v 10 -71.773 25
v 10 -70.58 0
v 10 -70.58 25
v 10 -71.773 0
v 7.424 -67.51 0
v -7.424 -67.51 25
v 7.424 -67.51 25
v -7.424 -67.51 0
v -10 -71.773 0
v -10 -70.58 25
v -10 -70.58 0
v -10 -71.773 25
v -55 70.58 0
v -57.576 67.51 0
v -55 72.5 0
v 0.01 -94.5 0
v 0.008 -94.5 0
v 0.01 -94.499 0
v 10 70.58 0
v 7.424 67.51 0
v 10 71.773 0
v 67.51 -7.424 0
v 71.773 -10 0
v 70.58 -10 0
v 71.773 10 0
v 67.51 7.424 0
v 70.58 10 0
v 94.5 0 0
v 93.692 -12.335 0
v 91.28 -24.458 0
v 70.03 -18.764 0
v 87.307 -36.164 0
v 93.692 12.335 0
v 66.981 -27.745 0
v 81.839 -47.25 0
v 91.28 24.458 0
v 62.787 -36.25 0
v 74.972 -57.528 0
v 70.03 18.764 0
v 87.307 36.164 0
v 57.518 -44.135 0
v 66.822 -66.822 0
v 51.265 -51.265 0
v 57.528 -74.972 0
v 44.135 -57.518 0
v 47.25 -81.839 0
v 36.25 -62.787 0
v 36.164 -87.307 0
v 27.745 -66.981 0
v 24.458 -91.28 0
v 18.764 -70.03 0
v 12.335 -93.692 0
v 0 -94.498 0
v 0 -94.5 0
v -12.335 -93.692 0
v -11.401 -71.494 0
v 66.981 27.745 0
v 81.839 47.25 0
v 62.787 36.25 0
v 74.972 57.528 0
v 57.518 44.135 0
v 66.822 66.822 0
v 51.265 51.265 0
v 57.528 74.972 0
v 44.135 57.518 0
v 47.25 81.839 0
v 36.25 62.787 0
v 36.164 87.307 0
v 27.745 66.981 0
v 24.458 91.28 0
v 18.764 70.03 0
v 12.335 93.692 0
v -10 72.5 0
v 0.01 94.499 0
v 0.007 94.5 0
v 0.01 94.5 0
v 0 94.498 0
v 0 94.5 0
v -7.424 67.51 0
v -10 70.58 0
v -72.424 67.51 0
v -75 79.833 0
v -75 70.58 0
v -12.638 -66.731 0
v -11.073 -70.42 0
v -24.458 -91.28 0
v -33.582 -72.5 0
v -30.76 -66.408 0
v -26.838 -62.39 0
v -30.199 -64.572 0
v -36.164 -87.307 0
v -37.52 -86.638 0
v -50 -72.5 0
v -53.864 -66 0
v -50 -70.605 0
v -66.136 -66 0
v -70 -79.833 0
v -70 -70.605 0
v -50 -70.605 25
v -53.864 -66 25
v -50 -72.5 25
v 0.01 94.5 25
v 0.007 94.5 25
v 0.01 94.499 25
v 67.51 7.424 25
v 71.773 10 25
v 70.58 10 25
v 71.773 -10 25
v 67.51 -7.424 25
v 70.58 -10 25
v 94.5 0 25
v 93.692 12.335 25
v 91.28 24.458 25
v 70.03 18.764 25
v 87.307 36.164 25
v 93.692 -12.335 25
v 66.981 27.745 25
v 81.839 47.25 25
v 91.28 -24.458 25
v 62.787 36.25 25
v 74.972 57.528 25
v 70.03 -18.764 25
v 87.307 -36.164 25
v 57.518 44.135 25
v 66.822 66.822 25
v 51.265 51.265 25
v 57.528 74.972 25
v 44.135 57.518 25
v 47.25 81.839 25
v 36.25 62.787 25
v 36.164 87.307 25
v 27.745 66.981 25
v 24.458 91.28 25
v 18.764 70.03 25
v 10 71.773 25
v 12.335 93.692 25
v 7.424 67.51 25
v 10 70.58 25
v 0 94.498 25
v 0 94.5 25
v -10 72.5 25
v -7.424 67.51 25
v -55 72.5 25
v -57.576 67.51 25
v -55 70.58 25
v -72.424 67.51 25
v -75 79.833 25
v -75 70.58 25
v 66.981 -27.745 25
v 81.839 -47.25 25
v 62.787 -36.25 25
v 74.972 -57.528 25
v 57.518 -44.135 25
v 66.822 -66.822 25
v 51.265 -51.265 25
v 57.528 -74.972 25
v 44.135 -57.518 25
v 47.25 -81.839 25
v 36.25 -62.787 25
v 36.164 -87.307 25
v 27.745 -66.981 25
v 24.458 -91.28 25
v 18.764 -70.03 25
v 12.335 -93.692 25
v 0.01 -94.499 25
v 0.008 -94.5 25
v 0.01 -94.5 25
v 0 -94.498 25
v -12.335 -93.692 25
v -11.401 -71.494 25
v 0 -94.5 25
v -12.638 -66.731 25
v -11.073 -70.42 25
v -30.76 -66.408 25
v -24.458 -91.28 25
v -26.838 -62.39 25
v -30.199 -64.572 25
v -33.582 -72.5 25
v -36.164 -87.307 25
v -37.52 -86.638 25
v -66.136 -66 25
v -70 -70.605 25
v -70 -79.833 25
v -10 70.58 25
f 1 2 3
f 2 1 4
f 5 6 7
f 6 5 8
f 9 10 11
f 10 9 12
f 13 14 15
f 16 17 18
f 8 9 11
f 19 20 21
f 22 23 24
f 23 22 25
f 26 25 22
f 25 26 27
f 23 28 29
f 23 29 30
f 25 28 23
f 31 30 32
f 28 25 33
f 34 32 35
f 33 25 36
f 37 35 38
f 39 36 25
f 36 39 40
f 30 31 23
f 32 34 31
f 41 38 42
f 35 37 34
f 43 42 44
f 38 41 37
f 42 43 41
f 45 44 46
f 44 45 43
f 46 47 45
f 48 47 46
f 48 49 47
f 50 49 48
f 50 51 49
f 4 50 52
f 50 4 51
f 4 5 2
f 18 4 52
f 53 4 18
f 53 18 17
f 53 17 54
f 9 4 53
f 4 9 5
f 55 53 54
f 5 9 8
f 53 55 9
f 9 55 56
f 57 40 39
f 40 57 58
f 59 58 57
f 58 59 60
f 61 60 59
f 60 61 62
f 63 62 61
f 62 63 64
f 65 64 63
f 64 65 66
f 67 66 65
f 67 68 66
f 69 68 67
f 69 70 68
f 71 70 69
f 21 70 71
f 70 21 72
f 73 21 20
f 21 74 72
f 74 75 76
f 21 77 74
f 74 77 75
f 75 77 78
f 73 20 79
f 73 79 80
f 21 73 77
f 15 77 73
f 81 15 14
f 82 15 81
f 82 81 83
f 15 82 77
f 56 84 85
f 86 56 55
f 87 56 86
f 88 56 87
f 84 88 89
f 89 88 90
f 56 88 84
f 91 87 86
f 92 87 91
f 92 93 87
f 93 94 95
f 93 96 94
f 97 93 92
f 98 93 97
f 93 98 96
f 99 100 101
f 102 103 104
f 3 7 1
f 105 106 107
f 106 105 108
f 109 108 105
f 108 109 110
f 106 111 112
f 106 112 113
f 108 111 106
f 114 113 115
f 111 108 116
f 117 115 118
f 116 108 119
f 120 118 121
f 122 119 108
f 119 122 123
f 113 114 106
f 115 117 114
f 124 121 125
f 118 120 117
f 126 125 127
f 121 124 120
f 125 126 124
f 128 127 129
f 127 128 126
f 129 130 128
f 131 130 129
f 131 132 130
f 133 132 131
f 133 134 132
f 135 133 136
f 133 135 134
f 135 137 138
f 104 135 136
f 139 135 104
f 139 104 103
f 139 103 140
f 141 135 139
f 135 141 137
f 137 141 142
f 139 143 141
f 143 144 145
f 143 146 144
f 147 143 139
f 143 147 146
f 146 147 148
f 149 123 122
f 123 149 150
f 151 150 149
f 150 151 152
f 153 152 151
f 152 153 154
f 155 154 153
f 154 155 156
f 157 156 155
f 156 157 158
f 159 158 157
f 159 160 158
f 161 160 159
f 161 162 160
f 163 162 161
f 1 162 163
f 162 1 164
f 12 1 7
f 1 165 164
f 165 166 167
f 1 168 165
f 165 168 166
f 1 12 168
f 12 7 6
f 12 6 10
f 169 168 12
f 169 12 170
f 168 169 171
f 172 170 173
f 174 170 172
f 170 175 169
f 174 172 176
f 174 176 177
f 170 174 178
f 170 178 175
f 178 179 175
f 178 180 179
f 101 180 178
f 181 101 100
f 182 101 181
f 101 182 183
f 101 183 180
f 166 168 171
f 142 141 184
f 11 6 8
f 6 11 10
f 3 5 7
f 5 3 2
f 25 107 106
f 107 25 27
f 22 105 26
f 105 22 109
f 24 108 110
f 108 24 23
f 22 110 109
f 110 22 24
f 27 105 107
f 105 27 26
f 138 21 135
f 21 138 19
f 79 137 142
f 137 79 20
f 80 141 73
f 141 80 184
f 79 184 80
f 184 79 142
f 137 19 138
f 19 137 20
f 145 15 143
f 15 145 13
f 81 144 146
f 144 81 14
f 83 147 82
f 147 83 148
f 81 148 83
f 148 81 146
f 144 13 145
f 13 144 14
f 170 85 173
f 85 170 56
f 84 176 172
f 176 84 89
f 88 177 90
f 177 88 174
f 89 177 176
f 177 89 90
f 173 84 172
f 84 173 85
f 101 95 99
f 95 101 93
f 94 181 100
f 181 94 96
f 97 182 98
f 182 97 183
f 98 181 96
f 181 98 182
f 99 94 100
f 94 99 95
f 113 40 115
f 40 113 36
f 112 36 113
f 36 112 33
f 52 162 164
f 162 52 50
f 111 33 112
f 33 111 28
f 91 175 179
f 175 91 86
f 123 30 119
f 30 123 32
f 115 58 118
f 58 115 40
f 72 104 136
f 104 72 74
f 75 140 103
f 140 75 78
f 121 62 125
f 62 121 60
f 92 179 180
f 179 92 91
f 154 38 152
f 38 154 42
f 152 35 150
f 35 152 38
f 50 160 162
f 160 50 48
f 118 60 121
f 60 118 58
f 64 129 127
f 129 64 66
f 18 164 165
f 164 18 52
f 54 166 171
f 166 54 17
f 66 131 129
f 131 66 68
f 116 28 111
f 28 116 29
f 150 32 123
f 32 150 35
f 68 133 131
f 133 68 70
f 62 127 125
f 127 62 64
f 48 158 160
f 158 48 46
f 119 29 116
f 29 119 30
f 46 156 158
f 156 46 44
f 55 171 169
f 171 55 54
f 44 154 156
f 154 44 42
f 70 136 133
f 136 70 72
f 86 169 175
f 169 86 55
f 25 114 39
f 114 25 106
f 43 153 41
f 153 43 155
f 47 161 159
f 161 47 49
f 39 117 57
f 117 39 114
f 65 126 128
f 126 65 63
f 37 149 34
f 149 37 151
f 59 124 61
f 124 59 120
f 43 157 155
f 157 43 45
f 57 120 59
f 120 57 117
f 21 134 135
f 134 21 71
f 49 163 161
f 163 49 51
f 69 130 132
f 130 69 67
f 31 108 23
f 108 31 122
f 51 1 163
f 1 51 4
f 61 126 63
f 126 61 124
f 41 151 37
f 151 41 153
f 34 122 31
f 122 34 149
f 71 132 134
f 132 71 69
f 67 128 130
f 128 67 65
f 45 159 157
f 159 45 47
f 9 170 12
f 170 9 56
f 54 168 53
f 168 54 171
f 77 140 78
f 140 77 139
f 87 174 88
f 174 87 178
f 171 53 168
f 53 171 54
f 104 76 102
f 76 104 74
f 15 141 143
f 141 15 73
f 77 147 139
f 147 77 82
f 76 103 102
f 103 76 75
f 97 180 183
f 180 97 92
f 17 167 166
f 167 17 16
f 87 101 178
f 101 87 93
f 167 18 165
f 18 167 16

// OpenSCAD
// AwningBrace.scad

delta = 0.01 ;
clearance = 0.1 ;

module Ring(od, id, t) {
    // Circular ring
    //
    // od   = outside diameter
    // id   = inside diameter
    // t    = thickness
    //
    difference() {
        cylinder(d=od, h=t, $fn=48) ;
        translate([0,0,-delta])
            cylinder(d=id, h=t+2*delta, $fn=48) ;
    }
}

module Segment180(d, a1, a2, t) {
    // Circle segment in X-Y plane, centred on origin extending from angle a1 to a2, 
    // where angles are measured clockwise from +X axis, a2 <= a1+180 (modulo 360).
    // Thus, the resulting segment has a maximum angle of 180 degrees.
    //
    // d    = diameter
    // a1   = start angle
    // a2   = end angle
    // 
    rotate([0,0,a1]) {
        difference() {
            dplus = d+delta ;
            cylinder(d=d, h=t) ;
            translate([-dplus/2,-dplus,-delta])
                cube(size=[dplus, dplus, t+2*delta]) ;
            rotate([0,0,a2-a1]) {
                translate([-dplus/2,0,-delta])
                    cube(size=[dplus, dplus, t+2*delta]) ;
            }
        }
    }
}

module Segment270(d, a1, a2, t) {
    // Circle segment in X-Y plane, centred on origin extending from angle a1 to a2, 
    // where angles are measured clockwise from +X axis, and a2 <= a1+270 (modulo 360).
    // Thus, the resulting segment has a maximum angle of 270 degrees.
    //
    // d    = diameter
    // a1   = start angle
    // a2   = end angle
    // t    = thickness
    // 
    // NOTE: this is overly complicated: do not use.  Segment180 is good
    r     = d/2 ;
    rplus = r+delta ;
    ar1   = -90 ;                       // first rotation relative to a1
    ar4   = (a2-a1)%360 ;               // final rotation relative to a1
    ars   = (ar4-ar1)%360 ;             // Sweep angle for segment
    arc   = ars ? 360 - ars : 0 ;       // Sweep angle for cutout
    ar2   = ar1 - (1/3)*arc ;           // second rotation
    ar3   = ar1 - (2/3)*arc ;           // third rotation
    difference() {
        cylinder(d=d, h=t) ;
        for (ar=[ar1,ar2,ar3,ar4]) {
            rotate([0,0,a1+ar])
                translate([0,0,-delta])
                    cube(size=[rplus, rplus, t+2*delta]) ;
        }
    }
}

module Segment(d, a1, a2, t) {
    // Circle segment in X-Y plane, centred on origin extending from angle a1 to a2, 
    // where angles are measured clockwise from +X axis, sweep a range <360
    //
    // d    = diameter
    // a1   = start angle
    // a2   = end angle
    // t    = thickness
    // 
    amid = a1 < a2 ? (a1+a2)/2 : (a1+a2)/2 + 180 ;
    Segment180(d, a1, amid+delta, t) ;
    Segment180(d, amid-delta, a2, t) ;
}

module RingSegment(od, id, a1, a2, t) {
    // Ring segment in X-Y plane, centred on origin extending from angle a1 to a2, 
    // where angles are measured clockwise from +X axis, sweep a range <360
    //
    // od   = outrside diameter
    // id   = inside diameter
    // a1   = start angle
    // a2   = end angle
    // t    = thickness
    // 
    intersection() {
        Ring(od, id, t) ;
        Segment(od+t, a1, a2, t) ;
    }
}

module test_ring_segment() {
    translate([0,0,0])
        Ring(20, 15, 2) ;
    translate([25,0,0])
        Segment180(20, 30, 120, 2) ;
    translate([50,0,0])
        Segment180(20, 40, 150, 2) ;
    translate([75,0,0])
        Segment180(20, 200, 330, 2) ;
    translate([100,0,0])
        Segment180(20, 30, 60, 2) ;

    translate([25,25,0])
        Segment180(20, 30, 120, 2) ;
    translate([50,25,0])
        Segment270(20, 40, 150, 2) ;
    translate([75,25,0])
        Segment270(20, 200, 330, 2) ;
    translate([100,25,0])
        Segment270(20, 30, 60, 2) ;
    translate([125,25,0])
        Segment270(20, 30, 300, 2) ;

    translate([25,50,0])
        Segment(20, 30, 120, 2) ;
    translate([50,50,0])
        Segment(20, 40, 150, 2) ;
    translate([75,50,0])
        Segment(20, 200, 330, 2) ;
    translate([100,50,0])
        Segment(20, 30, 60, 2) ;
    translate([125,50,0])
        Segment(20, 30, 330, 2) ;
    translate([150,50,0])
        Segment(20, 30, -30, 2) ;
    translate([175,50,0])
        Segment(20, -150, 150, 2) ;
    translate([200,50,0])
        Segment(20, 60, 30, 2) ;
   translate([225,50,0])
        Segment(20, -30, -60, 2) ;

    translate([25,75,0])
        RingSegment(20, 15, 30, 330, 2) ;
    translate([50,75,0])
        RingSegment(20, 15, 210, 150, 2) ;
    translate([75,75,0])
        RingSegment(20, 15, 210, 360+150, 2) ;
    translate([100,75,0])
        RingSegment(20, 15, 45, -45, 2) ;
}
// test_ring_segment() ;


module trapezoid(l, w1, w2, t) {
    // Tapered cuboid lying on X-Y plane, extending from origin along X-axis
    //
    // l    = overall length (X-dimension)
    // w1   = width at Y-axis intersect
    // w2   = width at other end
    // t    = thickness (Z-dimension)
    linear_extrude(height=t) {
        polygon(
            points=[
                [0,0], 
                [l, 0], 
                [l, w2], 
                [0, w1],
                ],
            paths=[[0,1,2,3,0]]
        ) ;
    }
}


module Contact_pad(l, w, t) {
    // Contact pad on X-Y plane, centred on Origin
    difference() {
        translate([0,0,t/2])
            cube(size=[l,w,t], center=true) ;
        translate([-l/2-t,0,t*0.75])
            rotate([0,40,0])
                cube(size=[t*2,w*2,t*4], center=true) ;
        translate([l/2+t,0,t*0.75])
            rotate([0,-40,0])
                cube(size=[t*2,w*2,t*4], center=true) ;
    }
}
//Contact_pad(20, 5, 5) ;

module Contact_pad_y(l, w, t, dir=+1)
    rotate([-90*dir,0,0])
        Contact_pad(l, w, t) ;

//translate([-75+10, -75-delta, 12.5/2])
//    Contact_pad_y(20, 12.5, 5, +1) ;


module Contact_pad_x(l, w, t, dir=+1)
    rotate([0,90*dir,0])
        rotate([0,0,90])
            Contact_pad(l, w, t) ;
//Contact_pad_x(20, 12.5, 5, -1) ;


module Awning_brace(jaw_w, jaw_ul, jaw_ll, rad_t, wid, pad_l, pad_t) {
    od = jaw_w + rad_t*2 ;
    // Back of clamp
    RingSegment(od, jaw_w, -90, 90, wid) ;

    // Jaw arms
    jaw_offset = (jaw_w+rad_t)/2 ;
    translate([-jaw_ul, jaw_offset-rad_t/2, 0])
        trapezoid(jaw_ul+delta, rad_t/3, rad_t, wid) ;
    translate([-jaw_ll, -jaw_offset+rad_t/2, 0])
        mirror(v=[0,1,0])
            trapezoid(jaw_ll+delta, rad_t/3, rad_t, wid) ;
        // cube(size=[jaw_ll+delta, rad_t, wid]) ;

    // Contact pads
    // Back of clamp
    translate([0, -jaw_w/2-delta, wid/2])
        Contact_pad_y(pad_l, wid, pad_t, +1) ;
    translate([+jaw_w/2+delta, 0, wid/2])
        Contact_pad_x(pad_l, wid, pad_t, -1) ;
    translate([0, +jaw_w/2+delta, wid/2])
        Contact_pad_y(pad_l, wid, pad_t, -1) ;

    // Continue support ring around back of casette
    ax  = 17 ;
    ax1 = atan(pad_l/jaw_w) ;
    RingSegment(od, jaw_w, -90-ax-ax1, -90, wid) ;
    rotate([0,0,-ax])
        translate([0, -jaw_w/2-delta, wid/2])
            Contact_pad_y(pad_l, wid, pad_t, +1) ;

    // Jaw ends
    translate([-jaw_ul+pad_l/2, +jaw_w/2+delta, wid/2])
        Contact_pad_y(pad_l, wid, pad_t, -1) ;
    translate([-jaw_ll+pad_l/2, -jaw_w/2-1, wid/2])
        rotate([0,0,0])
            Contact_pad_y(pad_l, wid, pad_t*1.5, +1) ;

    // Clamp tightening
}

Awning_brace(jaw_w=145, jaw_ul=75, jaw_ll=70, rad_t=22, wid=25, pad_l=20, pad_t=5) ;

module Contact_wedge(pad_l, thin_end, thick_end, wedge_wid) {
    wall_h  = thick_end + 2 ;
    wall_w  = 2 ;
    wid     = wedge_wid + 2*wall_w ;
    wedge_a = atan2(thick_end-thin_end, pad_l) ;
    difference() {
        cube(size=[pad_l, wid, wall_h]) ;
        rotate([0,wedge_a,0]) {
            translate([0,wall_w-clearance,(thick_end+thin_end)/2])
                cube(size=[pad_l-2, wedge_wid, wall_h]) ;
            translate([-2,wall_w-clearance,(thick_end+thin_end)/2+1])
                cube(size=[pad_l+2, wedge_wid, wall_h]) ;
        }
    }
}

// for (i=[0,1,2,3]) {
//     translate([0,i*32,0])
//         Contact_wedge(
//             pad_l=24, thin_end=i+17, thick_end=i+18, 
//             wedge_wid=25+2*clearance
//             ) ;
// }

// translate([0, 0,0])
//     Contact_wedge(pad_l=24, thin_end=16, thick_end=17, wedge_wid=25+2*clearance) ;
// translate([0,30,0])
// Contact_wedge(pad_l=24, thin_end=14, thick_end=15, wedge_wid=25+2*clearance) ;

// Contact_wedge(pad_l=24, thin_end=9, thick_end=11, wedge_wid=25+2*clearance) ;
// Contact_wedge(pad_l=24, thin_end=7.5, thick_end=9.5, wedge_wid=25+2*clearance) ;
// Contact_wedge(pad_l=24, thin_end=1, thick_end=3, wedge_wid=25+2*clearance) ;
